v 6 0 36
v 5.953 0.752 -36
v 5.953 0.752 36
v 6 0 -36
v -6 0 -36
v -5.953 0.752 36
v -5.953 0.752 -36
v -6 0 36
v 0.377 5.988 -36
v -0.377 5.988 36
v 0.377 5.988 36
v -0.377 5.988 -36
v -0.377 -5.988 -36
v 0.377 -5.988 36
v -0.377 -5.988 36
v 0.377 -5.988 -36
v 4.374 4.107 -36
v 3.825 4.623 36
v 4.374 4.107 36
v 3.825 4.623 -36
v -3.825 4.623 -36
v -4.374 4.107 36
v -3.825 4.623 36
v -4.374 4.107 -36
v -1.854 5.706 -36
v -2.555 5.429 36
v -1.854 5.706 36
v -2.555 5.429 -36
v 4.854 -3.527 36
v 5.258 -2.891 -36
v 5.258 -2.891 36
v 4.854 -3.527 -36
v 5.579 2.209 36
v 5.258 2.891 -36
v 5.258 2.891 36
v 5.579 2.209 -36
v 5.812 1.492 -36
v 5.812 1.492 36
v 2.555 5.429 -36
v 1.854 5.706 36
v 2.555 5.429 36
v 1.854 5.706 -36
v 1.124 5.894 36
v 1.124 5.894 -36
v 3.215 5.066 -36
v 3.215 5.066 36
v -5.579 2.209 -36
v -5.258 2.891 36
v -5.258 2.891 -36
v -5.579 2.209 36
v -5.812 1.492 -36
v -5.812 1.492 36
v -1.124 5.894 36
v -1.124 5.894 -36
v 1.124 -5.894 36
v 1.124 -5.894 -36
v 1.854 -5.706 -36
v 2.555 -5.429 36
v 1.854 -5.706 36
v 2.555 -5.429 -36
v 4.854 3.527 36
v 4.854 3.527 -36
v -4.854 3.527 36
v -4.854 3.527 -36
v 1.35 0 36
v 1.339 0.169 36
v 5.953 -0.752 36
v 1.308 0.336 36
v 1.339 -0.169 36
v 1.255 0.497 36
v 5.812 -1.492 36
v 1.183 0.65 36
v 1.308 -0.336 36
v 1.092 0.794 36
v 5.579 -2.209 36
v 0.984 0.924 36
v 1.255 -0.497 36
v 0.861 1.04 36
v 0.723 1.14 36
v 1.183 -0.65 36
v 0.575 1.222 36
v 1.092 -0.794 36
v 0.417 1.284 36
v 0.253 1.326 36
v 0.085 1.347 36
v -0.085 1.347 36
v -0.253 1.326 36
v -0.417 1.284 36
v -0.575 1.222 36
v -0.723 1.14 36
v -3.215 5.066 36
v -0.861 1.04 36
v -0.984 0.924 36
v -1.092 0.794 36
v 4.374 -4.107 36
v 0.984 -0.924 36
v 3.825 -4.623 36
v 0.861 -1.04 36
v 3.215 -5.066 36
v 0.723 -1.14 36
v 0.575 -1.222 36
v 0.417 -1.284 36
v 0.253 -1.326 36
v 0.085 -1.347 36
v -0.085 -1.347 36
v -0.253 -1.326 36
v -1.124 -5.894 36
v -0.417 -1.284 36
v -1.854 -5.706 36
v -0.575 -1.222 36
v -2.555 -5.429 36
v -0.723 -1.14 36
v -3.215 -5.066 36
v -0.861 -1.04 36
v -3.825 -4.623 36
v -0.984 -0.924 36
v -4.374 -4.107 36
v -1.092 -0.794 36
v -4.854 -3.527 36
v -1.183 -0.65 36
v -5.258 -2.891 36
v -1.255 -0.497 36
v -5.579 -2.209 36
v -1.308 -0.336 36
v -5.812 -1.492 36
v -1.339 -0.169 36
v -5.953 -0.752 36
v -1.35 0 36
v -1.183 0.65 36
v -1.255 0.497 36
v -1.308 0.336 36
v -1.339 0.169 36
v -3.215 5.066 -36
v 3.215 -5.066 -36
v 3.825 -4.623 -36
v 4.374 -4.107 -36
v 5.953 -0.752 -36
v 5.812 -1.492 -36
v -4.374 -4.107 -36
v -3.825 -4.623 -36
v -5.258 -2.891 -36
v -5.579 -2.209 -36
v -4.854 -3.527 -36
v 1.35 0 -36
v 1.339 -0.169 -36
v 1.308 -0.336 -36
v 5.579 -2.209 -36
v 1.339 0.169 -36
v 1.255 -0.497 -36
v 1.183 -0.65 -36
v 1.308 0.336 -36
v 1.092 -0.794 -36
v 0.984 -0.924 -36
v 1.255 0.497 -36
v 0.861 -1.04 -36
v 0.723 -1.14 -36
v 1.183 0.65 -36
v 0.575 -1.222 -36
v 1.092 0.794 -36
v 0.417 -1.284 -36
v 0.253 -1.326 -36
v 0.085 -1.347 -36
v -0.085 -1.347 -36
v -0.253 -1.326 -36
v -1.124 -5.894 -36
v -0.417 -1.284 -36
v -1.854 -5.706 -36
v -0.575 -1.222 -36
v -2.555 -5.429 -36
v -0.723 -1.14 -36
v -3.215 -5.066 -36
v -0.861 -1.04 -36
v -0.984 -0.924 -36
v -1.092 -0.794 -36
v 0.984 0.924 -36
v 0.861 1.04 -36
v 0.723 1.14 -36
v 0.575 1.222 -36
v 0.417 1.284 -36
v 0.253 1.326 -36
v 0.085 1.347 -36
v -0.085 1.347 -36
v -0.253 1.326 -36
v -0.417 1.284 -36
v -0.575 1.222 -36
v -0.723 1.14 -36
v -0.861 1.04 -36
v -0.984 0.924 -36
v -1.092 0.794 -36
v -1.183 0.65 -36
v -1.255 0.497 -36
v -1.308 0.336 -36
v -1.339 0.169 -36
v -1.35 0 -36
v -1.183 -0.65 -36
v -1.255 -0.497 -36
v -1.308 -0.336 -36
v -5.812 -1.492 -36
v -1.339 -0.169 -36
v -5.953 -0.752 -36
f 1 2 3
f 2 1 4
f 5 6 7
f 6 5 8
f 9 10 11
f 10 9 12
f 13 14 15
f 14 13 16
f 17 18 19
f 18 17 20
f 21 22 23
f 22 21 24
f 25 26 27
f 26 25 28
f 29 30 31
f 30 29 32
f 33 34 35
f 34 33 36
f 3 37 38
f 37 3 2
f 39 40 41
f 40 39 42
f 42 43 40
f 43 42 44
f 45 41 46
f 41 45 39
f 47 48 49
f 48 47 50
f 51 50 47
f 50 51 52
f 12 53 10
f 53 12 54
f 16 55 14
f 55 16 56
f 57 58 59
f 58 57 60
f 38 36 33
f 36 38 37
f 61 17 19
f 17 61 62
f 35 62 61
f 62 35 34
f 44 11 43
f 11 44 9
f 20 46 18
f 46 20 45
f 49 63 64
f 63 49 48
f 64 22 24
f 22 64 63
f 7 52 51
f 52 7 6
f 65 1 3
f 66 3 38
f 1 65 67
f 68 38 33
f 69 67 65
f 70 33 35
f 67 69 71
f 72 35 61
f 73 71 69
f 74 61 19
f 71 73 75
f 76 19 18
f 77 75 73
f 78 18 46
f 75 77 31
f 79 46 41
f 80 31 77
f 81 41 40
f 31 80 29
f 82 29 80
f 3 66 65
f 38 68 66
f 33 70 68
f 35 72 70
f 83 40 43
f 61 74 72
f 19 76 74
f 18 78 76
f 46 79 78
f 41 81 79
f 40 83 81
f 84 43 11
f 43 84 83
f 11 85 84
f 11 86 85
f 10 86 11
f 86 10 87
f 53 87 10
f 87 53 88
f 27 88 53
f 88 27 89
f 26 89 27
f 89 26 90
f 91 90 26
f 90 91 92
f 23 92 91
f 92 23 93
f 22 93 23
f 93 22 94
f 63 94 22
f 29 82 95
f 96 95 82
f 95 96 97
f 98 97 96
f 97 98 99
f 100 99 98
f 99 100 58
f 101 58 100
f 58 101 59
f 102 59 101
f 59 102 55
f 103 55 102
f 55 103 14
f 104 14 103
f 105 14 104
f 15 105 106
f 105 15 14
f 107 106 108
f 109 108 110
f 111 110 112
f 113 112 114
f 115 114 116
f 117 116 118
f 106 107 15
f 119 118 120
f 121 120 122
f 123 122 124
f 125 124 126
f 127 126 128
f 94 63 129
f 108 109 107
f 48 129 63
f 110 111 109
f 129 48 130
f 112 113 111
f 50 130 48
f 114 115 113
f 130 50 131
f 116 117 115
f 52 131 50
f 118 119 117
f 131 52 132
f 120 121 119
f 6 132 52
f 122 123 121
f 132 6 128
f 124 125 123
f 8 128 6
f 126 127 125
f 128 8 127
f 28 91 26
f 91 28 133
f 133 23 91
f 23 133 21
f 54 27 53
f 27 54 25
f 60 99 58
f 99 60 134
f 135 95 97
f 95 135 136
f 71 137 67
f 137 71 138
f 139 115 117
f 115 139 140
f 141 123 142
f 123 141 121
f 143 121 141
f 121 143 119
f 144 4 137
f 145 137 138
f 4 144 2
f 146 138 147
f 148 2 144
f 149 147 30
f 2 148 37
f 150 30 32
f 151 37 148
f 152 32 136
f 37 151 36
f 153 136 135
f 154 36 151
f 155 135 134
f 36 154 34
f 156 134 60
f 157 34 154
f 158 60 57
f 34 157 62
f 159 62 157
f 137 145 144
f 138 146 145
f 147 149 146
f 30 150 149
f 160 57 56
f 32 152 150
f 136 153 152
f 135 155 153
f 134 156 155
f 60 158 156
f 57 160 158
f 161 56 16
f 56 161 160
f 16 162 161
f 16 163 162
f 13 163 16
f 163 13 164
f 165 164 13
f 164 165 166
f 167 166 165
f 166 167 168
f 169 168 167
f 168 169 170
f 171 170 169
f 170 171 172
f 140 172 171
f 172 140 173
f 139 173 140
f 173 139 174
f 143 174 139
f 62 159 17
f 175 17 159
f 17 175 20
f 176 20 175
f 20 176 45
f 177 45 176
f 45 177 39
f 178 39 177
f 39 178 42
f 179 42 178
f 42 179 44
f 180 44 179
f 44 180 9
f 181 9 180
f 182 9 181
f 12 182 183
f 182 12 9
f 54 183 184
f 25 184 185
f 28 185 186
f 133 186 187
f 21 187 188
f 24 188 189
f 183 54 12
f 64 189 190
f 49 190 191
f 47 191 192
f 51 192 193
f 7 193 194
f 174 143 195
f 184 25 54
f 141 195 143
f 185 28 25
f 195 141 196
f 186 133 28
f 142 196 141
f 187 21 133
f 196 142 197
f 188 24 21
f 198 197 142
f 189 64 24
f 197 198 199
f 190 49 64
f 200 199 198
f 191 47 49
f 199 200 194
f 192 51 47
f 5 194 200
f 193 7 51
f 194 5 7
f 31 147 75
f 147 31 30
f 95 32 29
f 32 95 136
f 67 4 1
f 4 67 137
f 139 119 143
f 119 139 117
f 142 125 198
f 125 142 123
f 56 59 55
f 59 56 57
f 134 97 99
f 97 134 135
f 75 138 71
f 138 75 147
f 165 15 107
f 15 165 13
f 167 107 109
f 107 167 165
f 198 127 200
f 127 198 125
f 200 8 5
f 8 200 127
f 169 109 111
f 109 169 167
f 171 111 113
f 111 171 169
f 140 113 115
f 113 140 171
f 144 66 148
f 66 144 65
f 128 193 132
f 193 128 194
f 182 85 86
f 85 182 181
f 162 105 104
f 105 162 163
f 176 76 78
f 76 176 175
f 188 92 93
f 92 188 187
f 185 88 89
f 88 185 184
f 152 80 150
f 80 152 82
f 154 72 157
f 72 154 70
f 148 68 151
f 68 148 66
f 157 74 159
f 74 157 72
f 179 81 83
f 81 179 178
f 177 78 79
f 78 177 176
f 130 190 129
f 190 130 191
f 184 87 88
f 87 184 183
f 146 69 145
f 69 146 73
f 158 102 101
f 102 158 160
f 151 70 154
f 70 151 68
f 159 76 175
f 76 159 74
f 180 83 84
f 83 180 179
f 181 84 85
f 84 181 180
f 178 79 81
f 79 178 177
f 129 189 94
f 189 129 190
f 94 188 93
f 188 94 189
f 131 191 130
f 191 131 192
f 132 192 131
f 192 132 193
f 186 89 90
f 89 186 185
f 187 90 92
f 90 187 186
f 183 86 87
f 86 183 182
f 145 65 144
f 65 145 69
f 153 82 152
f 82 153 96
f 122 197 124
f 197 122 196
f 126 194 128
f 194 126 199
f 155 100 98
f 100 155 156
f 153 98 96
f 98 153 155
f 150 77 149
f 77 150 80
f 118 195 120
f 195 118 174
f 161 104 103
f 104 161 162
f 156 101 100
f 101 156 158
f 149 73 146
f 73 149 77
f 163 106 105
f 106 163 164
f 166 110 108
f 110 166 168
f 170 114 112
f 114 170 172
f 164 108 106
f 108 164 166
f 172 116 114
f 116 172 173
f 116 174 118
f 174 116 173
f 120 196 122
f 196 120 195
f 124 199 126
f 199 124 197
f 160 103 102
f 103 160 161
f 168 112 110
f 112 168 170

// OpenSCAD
$fn = 50;


difference() {
	union() {
		translate(v = [0, 0, -36.0000000000]) {
			cylinder(h = 72, r = 6.0000000000);
		}
	}
	union() {
		translate(v = [0, 0, -100.0000000000]) {
			cylinder(h = 200, r = 1.3500000000);
		}
	}
}
